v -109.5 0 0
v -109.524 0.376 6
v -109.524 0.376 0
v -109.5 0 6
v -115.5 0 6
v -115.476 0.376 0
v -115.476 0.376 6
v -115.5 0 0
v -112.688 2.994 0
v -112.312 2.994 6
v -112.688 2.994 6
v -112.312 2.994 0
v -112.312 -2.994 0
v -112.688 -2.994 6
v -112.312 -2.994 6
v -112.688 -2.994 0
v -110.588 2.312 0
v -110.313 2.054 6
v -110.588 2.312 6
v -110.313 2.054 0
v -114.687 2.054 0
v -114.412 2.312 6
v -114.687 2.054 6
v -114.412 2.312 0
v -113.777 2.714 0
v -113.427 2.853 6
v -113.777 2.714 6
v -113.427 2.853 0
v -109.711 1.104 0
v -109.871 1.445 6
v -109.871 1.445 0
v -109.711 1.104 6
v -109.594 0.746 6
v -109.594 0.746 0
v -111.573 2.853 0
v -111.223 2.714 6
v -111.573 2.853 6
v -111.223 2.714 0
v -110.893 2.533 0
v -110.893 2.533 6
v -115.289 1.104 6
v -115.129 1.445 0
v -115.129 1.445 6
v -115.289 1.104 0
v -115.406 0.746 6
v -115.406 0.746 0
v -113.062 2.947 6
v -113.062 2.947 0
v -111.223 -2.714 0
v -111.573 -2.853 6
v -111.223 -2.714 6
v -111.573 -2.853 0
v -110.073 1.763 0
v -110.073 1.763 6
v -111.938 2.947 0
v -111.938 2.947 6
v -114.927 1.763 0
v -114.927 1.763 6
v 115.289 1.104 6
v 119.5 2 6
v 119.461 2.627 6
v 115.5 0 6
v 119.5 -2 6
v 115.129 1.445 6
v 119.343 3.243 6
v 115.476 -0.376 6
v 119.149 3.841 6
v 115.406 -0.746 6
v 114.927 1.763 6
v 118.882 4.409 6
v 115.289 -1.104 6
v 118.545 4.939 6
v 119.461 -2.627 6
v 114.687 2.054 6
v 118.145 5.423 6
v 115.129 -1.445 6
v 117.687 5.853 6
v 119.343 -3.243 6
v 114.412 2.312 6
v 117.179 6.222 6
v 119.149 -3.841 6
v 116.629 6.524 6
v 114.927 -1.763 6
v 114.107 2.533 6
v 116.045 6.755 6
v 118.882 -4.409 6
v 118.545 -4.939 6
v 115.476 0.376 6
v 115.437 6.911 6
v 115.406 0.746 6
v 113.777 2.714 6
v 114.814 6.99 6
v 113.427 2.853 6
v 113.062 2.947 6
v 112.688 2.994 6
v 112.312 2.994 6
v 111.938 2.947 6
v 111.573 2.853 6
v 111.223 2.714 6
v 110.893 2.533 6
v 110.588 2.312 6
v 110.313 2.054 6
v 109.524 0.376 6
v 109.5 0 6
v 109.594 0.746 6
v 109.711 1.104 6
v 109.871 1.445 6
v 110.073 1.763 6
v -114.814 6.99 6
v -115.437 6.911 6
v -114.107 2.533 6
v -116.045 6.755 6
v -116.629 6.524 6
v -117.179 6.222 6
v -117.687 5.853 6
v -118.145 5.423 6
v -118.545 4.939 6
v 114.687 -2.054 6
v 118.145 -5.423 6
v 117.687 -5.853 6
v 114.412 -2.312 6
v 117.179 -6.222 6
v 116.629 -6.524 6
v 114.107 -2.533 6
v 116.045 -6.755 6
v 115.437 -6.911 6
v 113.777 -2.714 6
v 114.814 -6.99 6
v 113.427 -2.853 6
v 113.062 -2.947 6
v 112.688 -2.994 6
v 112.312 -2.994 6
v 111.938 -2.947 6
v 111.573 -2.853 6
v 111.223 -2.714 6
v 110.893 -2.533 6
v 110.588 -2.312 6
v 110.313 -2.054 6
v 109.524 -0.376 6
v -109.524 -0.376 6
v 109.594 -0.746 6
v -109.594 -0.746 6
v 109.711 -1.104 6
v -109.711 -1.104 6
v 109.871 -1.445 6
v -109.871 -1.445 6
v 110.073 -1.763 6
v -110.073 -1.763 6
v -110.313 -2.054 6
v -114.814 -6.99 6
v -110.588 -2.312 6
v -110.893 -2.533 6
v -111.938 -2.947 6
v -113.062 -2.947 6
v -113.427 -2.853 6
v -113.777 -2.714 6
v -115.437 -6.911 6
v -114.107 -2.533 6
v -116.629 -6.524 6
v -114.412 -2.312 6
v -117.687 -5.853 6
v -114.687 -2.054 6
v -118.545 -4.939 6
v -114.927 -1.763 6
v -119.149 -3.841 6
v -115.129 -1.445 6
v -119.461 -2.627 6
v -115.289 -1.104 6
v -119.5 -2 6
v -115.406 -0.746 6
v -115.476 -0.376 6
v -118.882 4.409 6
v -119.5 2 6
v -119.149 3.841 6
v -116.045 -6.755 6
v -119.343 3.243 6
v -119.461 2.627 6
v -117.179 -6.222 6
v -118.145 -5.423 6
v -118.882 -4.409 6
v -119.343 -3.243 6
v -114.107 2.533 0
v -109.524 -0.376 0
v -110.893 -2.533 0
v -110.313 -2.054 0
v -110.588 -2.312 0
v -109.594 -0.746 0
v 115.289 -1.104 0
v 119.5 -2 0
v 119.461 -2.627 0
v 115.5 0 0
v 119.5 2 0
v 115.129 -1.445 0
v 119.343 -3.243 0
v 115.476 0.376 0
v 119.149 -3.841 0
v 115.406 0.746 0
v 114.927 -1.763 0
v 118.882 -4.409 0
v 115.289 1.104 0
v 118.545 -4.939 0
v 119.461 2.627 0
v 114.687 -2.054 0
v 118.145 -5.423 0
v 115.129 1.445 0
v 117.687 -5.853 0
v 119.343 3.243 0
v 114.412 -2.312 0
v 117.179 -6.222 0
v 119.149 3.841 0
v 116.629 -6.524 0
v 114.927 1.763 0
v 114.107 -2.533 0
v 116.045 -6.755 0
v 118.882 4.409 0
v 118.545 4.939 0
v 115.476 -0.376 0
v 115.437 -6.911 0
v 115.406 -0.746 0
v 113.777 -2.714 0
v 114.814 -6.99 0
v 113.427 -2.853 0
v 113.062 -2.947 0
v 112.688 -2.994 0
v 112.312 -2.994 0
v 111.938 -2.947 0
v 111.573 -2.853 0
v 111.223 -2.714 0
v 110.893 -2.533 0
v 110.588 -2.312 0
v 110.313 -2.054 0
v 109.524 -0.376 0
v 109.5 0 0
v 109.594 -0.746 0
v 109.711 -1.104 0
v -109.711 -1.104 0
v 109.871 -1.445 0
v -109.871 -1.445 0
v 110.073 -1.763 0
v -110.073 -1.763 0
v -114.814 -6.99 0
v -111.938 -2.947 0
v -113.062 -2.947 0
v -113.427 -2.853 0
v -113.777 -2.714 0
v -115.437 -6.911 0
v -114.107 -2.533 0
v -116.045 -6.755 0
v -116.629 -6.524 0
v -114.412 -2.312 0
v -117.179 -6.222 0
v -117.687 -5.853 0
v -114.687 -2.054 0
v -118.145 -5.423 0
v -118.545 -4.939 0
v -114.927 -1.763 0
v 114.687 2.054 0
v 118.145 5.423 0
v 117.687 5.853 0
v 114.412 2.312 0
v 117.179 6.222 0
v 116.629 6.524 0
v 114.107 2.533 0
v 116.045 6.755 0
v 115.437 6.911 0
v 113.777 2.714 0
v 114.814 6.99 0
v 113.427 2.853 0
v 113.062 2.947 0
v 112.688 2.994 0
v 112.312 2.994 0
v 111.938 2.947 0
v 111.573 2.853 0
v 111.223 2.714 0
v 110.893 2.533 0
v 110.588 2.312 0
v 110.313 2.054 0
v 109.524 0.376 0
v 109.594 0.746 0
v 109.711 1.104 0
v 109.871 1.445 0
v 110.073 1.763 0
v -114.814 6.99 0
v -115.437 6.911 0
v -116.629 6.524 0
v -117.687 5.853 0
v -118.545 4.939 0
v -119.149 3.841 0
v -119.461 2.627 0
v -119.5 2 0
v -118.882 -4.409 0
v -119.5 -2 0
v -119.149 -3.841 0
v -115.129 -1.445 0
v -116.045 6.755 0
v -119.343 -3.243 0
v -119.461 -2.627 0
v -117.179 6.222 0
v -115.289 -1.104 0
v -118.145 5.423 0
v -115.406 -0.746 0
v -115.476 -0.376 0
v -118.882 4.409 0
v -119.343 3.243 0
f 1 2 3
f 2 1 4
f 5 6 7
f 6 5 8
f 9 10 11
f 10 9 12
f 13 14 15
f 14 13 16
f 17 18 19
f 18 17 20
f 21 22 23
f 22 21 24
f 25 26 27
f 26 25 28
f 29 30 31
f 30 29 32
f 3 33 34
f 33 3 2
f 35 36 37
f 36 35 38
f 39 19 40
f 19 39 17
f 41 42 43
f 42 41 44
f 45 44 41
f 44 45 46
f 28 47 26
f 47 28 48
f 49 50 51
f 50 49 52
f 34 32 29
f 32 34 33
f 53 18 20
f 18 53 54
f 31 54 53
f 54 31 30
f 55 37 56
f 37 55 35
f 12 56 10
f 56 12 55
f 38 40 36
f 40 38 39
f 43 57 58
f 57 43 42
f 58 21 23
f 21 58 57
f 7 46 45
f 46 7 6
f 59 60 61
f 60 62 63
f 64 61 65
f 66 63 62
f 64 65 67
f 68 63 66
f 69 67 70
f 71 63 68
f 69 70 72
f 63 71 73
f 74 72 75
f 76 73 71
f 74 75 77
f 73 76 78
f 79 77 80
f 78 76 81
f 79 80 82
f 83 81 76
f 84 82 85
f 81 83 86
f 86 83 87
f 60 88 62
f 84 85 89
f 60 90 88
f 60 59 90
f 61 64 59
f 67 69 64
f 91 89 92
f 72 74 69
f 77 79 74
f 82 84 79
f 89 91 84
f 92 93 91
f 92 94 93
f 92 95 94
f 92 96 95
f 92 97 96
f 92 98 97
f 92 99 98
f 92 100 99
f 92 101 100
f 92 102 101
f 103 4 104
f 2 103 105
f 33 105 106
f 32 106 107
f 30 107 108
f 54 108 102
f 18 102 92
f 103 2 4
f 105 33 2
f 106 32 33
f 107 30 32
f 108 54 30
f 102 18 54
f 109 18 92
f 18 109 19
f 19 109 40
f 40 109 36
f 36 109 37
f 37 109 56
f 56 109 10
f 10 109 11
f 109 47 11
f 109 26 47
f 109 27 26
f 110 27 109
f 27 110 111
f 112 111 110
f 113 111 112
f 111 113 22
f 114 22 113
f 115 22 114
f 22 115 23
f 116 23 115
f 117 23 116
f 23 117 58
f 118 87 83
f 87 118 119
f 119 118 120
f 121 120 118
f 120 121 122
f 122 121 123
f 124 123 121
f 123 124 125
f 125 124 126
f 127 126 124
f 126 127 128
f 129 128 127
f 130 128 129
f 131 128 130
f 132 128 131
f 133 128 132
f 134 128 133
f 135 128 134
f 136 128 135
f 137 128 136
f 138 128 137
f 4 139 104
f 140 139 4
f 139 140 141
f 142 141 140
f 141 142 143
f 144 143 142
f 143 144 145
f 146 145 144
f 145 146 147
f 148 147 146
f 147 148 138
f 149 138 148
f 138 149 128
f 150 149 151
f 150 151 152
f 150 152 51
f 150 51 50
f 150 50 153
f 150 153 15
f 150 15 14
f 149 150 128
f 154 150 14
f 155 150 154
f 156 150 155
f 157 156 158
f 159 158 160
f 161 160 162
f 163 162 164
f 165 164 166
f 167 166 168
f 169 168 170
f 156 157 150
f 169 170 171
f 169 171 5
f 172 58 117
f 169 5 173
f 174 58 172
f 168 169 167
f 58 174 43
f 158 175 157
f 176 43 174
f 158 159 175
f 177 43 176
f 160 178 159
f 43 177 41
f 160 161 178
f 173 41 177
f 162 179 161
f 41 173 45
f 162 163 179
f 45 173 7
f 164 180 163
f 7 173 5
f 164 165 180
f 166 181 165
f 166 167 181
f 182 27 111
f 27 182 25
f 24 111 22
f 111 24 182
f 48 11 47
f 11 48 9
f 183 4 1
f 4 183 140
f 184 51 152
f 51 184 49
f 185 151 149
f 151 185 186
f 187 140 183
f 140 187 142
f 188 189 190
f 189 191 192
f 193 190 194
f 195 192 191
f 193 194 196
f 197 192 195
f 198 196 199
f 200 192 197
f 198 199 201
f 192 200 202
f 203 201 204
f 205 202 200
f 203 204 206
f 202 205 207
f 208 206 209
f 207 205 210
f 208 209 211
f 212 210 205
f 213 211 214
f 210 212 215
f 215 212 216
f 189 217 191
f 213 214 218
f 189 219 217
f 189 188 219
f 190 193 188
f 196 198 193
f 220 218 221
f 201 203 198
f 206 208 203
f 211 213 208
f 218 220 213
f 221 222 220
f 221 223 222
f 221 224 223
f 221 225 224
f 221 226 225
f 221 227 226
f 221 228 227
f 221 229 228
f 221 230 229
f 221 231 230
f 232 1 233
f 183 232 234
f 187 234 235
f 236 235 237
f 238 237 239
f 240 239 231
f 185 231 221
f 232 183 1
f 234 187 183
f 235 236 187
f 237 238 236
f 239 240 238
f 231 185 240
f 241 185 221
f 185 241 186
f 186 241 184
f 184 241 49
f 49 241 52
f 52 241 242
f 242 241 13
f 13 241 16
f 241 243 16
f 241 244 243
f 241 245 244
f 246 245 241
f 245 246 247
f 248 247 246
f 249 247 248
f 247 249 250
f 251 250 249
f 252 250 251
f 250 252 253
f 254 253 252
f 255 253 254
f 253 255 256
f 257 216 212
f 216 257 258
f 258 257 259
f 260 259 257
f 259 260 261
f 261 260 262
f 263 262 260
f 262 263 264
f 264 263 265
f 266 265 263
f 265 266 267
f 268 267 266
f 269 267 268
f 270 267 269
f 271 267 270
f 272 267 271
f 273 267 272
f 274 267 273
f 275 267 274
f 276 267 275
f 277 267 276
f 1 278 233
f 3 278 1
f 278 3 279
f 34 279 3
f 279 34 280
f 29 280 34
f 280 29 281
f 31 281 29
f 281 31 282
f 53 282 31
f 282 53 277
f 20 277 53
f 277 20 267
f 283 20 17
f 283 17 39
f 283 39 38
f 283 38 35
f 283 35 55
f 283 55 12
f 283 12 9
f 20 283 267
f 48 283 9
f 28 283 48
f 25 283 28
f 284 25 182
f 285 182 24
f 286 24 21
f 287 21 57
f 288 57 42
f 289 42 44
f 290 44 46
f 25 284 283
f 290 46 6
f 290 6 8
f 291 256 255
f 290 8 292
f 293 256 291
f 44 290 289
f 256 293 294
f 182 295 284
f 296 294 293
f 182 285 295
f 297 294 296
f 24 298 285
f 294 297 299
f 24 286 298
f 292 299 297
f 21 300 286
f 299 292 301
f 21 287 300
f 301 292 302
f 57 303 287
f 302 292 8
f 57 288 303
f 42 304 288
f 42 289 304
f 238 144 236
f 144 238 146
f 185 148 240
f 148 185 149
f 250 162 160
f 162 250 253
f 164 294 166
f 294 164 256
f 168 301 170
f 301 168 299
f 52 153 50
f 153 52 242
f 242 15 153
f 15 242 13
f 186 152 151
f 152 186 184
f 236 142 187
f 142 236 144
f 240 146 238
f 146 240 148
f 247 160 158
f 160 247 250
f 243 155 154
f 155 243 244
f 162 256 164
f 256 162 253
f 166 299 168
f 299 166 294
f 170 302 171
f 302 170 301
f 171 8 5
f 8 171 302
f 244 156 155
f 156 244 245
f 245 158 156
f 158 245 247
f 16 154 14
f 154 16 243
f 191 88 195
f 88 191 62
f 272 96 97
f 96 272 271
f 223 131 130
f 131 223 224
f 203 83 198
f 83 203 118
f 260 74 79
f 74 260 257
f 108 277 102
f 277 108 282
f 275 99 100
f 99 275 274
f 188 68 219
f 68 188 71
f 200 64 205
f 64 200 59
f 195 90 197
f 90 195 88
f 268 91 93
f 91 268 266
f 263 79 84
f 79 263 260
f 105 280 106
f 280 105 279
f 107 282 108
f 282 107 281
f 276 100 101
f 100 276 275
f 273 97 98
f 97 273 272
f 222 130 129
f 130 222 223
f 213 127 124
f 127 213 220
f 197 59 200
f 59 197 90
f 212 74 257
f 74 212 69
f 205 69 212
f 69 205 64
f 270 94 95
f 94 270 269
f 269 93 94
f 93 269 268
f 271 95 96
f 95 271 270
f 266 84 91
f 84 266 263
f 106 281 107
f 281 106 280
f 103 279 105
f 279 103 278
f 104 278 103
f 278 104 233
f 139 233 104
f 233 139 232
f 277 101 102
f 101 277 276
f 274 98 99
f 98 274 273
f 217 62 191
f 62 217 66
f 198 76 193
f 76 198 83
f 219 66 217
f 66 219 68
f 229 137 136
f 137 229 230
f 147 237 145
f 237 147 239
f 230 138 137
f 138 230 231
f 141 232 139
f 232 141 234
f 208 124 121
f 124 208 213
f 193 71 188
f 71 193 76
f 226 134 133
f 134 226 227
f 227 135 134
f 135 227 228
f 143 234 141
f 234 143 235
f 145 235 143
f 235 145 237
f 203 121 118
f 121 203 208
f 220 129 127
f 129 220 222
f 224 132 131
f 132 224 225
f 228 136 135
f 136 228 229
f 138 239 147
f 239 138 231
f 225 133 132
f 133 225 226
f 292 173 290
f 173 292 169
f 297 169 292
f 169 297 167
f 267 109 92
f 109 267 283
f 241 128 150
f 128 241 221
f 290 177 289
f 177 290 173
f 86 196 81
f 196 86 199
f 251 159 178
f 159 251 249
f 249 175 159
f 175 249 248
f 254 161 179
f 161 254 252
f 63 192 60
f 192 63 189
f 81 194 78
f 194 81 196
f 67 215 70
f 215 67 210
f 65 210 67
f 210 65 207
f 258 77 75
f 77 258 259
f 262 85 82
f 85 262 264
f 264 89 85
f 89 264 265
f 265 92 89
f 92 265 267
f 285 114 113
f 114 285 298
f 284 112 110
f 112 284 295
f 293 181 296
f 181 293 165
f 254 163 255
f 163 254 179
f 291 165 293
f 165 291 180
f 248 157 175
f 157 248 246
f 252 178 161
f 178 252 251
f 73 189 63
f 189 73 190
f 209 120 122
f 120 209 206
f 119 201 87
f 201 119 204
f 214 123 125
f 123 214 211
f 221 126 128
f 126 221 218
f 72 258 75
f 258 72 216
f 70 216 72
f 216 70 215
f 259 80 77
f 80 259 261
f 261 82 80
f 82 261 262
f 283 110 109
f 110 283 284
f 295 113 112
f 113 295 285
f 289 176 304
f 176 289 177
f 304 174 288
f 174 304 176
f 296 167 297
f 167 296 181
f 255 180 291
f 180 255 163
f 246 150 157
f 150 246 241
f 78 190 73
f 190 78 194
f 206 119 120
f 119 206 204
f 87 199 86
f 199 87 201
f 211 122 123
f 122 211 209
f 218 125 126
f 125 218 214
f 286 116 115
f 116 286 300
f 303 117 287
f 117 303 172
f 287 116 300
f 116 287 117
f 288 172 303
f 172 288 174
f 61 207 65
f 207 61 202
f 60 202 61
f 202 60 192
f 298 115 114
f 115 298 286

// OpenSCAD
$fn = 50;


difference() {
	union() {
		hull() {
			translate(v = [-114.5000000000, 2.0000000000, 0]) {
				cylinder(h = 6, r = 5);
			}
			translate(v = [114.5000000000, 2.0000000000, 0]) {
				cylinder(h = 6, r = 5);
			}
			translate(v = [-114.5000000000, -2.0000000000, 0]) {
				cylinder(h = 6, r = 5);
			}
			translate(v = [114.5000000000, -2.0000000000, 0]) {
				cylinder(h = 6, r = 5);
			}
		}
	}
	union() {
		translate(v = [-112.5000000000, 0.0000000000, 0]) {
			cylinder(h = 6, r = 3.0000000000);
		}
		translate(v = [112.5000000000, 0.0000000000, 0]) {
			cylinder(h = 6, r = 3.0000000000);
		}
		translate(v = [-112.5000000000, 0.0000000000, 0]) {
			cylinder(h = 6, r = 1.5000000000);
		}
		translate(v = [112.5000000000, 0.0000000000, 0]) {
			cylinder(h = 6, r = 1.5000000000);
		}
		translate(v = [-112.5000000000, 0.0000000000, 0]) {
			cylinder(h = 6, r = 1.5000000000);
		}
		translate(v = [112.5000000000, 0.0000000000, 0]) {
			cylinder(h = 6, r = 1.5000000000);
		}
		translate(v = [-112.5000000000, 0.0000000000, 0]) {
			cylinder(h = 6, r = 1.5000000000);
		}
		translate(v = [112.5000000000, 0.0000000000, 0]) {
			cylinder(h = 6, r = 1.5000000000);
		}
	}
}
